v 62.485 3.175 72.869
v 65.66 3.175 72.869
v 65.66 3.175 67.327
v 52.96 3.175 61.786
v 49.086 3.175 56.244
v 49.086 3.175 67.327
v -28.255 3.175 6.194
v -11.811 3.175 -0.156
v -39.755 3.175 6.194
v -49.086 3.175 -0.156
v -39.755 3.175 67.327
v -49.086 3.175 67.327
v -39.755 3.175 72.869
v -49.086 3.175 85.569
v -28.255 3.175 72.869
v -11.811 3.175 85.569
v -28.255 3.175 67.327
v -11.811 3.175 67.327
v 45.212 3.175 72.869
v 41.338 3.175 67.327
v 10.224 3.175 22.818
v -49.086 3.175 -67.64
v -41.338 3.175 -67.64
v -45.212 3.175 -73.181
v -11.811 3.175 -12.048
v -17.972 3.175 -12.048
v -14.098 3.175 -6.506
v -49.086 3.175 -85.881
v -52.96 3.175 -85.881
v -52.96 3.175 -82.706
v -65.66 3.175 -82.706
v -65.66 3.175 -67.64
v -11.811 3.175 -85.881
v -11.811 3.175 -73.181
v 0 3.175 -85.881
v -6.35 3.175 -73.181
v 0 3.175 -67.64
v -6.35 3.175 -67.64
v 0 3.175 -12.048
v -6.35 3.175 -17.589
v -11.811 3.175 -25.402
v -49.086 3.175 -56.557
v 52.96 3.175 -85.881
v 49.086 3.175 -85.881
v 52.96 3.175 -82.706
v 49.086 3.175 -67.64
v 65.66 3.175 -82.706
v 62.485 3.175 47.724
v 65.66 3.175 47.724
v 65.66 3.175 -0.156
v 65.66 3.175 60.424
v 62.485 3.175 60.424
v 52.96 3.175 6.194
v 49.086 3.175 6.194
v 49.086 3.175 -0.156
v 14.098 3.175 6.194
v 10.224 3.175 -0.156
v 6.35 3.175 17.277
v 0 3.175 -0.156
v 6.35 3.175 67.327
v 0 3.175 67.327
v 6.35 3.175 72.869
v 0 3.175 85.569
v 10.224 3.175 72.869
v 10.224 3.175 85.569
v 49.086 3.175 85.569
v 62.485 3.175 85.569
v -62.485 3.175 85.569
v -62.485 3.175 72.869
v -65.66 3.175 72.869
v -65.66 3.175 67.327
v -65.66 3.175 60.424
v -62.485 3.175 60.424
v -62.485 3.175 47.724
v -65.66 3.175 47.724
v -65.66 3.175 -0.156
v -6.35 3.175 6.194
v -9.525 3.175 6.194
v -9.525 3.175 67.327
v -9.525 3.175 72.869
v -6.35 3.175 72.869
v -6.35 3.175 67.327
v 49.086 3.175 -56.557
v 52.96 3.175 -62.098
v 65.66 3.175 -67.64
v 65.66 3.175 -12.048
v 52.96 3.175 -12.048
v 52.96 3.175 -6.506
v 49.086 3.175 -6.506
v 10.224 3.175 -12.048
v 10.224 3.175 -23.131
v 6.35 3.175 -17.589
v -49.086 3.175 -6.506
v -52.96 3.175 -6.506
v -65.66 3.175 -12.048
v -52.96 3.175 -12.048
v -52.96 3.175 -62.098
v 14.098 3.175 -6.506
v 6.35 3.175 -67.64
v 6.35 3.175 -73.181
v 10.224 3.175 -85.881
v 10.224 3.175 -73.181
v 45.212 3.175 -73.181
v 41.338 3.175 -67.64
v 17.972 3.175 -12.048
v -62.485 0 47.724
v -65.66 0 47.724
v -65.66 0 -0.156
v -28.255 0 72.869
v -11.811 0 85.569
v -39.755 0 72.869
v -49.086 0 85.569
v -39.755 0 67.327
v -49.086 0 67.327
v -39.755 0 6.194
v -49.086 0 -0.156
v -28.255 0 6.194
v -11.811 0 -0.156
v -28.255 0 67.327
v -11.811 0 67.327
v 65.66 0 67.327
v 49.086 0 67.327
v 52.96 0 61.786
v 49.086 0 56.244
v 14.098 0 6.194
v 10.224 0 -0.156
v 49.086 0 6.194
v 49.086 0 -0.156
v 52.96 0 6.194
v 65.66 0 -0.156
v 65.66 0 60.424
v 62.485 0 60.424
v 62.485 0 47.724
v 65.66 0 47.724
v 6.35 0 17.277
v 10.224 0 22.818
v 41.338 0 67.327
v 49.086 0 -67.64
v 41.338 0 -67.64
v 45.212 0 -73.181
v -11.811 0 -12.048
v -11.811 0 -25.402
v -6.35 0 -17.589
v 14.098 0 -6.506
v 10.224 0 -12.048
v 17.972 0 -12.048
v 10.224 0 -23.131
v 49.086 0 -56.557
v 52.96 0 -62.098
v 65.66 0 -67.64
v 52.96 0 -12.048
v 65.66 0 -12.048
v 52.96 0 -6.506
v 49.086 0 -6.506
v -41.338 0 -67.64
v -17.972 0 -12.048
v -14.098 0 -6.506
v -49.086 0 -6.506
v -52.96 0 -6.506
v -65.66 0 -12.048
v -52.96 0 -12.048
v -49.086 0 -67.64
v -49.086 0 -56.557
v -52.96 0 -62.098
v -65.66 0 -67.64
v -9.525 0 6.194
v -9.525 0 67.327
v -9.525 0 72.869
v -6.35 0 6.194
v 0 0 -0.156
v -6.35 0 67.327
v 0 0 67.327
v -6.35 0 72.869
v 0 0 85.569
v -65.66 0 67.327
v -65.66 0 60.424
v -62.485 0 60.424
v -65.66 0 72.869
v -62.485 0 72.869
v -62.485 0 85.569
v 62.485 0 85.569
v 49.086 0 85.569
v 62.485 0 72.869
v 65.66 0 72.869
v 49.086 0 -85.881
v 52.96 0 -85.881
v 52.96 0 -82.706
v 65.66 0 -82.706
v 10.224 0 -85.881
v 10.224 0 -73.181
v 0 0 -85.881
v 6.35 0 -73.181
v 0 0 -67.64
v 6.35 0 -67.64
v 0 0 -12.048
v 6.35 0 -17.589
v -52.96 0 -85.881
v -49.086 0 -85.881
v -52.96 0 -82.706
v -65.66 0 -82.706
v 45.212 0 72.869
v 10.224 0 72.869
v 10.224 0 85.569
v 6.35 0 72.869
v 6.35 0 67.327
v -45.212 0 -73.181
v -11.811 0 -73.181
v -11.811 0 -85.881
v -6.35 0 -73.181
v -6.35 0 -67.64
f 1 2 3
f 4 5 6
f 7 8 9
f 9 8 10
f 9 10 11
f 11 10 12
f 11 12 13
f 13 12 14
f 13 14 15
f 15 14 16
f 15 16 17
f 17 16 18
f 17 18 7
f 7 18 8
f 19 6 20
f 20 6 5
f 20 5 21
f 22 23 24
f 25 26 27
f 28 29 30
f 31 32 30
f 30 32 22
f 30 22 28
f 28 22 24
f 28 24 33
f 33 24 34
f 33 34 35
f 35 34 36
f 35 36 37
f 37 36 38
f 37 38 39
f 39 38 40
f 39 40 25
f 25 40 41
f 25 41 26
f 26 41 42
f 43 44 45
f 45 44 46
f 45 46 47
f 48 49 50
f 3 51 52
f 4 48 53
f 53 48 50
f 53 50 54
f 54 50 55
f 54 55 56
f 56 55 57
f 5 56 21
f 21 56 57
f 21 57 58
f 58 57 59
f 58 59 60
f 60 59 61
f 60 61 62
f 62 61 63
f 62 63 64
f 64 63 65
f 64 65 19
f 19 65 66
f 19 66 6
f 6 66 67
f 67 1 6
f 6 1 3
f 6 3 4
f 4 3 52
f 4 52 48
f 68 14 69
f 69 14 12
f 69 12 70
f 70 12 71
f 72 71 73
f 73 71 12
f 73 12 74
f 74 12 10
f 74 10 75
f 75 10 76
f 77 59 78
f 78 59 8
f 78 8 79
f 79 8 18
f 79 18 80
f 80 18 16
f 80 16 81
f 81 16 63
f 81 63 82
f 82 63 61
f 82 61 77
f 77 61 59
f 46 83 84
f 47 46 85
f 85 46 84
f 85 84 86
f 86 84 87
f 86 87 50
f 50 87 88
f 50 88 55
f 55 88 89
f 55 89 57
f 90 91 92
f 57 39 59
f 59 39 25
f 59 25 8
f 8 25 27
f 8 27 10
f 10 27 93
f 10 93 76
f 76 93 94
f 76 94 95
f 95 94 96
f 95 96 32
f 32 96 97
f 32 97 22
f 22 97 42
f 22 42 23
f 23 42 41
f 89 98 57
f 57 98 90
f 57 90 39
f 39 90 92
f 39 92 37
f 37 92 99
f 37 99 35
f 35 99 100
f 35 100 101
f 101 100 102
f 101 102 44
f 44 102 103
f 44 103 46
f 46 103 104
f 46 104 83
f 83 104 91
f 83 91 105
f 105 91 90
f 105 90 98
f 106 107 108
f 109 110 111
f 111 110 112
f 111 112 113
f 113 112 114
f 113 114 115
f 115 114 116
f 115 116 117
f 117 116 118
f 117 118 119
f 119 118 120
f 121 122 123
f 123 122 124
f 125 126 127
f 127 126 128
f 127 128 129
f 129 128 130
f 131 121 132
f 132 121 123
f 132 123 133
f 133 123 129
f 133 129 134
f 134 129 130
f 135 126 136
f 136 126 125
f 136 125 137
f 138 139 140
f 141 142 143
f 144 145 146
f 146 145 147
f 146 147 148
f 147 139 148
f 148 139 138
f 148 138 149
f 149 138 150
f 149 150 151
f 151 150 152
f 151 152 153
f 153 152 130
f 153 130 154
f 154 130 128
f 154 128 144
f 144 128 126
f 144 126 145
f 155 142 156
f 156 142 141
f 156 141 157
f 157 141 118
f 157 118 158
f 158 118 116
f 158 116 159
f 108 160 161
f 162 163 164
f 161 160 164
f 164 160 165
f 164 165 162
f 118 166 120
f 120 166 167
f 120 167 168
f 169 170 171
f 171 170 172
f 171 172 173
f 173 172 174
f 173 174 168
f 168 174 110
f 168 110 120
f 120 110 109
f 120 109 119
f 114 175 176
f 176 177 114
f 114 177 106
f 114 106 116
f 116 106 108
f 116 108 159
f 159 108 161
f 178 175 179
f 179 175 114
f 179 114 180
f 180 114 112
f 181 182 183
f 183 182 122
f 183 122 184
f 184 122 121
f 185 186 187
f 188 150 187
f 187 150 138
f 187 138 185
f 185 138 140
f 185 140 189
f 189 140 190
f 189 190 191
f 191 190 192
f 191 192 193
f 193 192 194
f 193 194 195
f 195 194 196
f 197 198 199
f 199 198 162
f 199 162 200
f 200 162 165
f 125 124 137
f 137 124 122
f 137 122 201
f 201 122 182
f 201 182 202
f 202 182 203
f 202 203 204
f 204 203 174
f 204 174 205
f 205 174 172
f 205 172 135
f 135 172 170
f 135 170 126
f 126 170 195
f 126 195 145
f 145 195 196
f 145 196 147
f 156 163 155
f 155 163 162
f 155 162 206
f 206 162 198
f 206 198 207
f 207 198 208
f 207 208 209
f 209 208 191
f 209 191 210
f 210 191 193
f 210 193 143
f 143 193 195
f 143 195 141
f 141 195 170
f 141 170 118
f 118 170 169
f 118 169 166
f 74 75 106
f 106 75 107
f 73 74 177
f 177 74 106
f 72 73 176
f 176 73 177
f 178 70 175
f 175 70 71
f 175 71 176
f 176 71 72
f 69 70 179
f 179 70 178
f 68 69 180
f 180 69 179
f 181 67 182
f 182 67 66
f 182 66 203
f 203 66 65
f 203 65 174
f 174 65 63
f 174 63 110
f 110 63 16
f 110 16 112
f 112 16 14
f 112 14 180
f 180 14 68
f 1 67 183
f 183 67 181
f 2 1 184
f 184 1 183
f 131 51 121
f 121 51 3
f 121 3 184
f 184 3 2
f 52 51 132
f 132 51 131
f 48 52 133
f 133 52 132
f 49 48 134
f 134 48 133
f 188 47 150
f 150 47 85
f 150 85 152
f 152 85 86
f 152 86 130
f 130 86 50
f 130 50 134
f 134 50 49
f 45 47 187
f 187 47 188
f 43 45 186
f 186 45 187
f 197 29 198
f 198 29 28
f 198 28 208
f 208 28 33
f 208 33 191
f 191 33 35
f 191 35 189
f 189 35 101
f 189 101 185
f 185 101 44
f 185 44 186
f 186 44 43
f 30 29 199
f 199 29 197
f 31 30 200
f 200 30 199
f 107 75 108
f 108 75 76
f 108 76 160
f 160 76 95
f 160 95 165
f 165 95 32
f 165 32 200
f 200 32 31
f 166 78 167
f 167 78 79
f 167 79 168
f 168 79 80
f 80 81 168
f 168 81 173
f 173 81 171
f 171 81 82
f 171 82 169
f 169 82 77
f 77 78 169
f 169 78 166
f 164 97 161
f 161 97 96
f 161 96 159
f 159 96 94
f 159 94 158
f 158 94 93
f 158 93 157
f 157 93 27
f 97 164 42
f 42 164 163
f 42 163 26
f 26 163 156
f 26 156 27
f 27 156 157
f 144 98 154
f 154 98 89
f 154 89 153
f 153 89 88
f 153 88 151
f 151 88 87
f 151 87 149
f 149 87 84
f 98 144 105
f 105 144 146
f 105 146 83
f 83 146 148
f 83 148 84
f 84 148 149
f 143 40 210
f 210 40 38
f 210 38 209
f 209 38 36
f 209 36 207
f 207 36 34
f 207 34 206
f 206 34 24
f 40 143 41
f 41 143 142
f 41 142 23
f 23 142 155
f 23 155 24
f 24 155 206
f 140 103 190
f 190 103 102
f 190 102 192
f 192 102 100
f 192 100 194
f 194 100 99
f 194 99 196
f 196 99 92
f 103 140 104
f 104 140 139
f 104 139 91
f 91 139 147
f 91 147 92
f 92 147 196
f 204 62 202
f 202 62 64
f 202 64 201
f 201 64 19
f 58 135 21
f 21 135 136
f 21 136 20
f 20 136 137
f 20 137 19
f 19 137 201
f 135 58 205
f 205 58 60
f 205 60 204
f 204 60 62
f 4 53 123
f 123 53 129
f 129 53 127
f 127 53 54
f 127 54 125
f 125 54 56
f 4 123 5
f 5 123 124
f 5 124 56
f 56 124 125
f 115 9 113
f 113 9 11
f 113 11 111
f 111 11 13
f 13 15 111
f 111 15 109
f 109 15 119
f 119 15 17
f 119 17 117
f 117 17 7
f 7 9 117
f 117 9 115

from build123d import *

# Parameters (mm, degrees)
SKETCH1_W           = 11.5
SKETCH1_H           = 66.675
SKETCH1_W_2         = 3.175
BOSS_EXTRUDE1_DEPTH = 3.175


with BuildPart() as part:
    # Sketch1 → Boss-Extrude1 (new body)
    with BuildSketch(Plane(origin=(0, 0, 0), x_dir=(1, 0, 0), z_dir=(0, 1, 0))):
        Polygon((-52.96, 85.881432482), (52.96, 85.881432482), (52.96, 82.706432482), (65.66, 82.706432482), (65.66, -47.723567518), (62.485, -47.723567518), (62.485, -60.423567518), (65.66, -60.423567518), (65.66, -72.868567518), (62.485, -72.868567518), (62.485, -85.568567518), (-62.485, -85.568567518), (-62.485, -72.868567518), (-65.66, -72.868567518), (-65.66, -60.423567518), (-62.485, -60.423567518), (-62.485, -47.723567518), (-65.66, -47.723567518), (-65.66, 82.706432482), (-52.96, 82.706432482), align=None)
        Polygon((-52.96, 6.506432482), (-14.097750884, 6.506432482), (-52.96, 62.098375408), align=None, mode=Mode.SUBTRACT)
        Polygon((-45.212249116, 73.181432482), (-6.35, 73.181432482), (-6.35, 17.589489555), align=None, mode=Mode.SUBTRACT)
        with Locations((-34.0045, -39.531067518)):
            Rectangle(SKETCH1_W, SKETCH1_H, mode=Mode.SUBTRACT)
        Polygon((52.96, 62.098375408), (52.96, 6.506432482), (14.097750884, 6.506432482), align=None, mode=Mode.SUBTRACT)
        Polygon((6.35, 73.181432482), (6.35, 17.589489555), (45.212249116, 73.181432482), align=None, mode=Mode.SUBTRACT)
        Polygon((14.097750884, -6.193567518), (52.96, -6.193567518), (52.96, -61.785510445), align=None, mode=Mode.SUBTRACT)
        Polygon((6.35, -17.276624592), (45.212249116, -72.868567518), (6.35, -72.868567518), align=None, mode=Mode.SUBTRACT)
        with Locations((-7.9375, -39.531067518)):
            Rectangle(SKETCH1_W_2, SKETCH1_H, mode=Mode.SUBTRACT)
    extrude(amount=BOSS_EXTRUDE1_DEPTH)


solid = part.part
